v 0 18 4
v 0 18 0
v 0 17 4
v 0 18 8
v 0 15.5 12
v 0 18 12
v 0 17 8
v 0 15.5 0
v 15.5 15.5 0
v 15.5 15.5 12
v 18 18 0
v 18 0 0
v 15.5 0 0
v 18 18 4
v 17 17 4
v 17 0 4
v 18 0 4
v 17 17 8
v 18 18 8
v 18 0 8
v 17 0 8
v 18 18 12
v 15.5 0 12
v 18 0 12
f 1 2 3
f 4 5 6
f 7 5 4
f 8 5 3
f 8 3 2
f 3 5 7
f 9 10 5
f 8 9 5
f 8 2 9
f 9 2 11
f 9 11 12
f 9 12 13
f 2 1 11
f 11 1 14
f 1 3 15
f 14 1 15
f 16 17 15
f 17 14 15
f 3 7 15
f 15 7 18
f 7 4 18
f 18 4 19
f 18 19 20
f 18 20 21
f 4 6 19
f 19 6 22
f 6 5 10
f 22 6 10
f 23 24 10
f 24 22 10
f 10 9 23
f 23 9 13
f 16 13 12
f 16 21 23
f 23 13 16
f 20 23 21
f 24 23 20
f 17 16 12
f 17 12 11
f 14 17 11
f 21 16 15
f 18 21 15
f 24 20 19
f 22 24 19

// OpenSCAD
difference(){
union(){cube([18,18,4]);
cube([17,17,8]);
translate([0,0,8])cube([18,18,4]);
}

cube([15.5,15.5,12]);}
